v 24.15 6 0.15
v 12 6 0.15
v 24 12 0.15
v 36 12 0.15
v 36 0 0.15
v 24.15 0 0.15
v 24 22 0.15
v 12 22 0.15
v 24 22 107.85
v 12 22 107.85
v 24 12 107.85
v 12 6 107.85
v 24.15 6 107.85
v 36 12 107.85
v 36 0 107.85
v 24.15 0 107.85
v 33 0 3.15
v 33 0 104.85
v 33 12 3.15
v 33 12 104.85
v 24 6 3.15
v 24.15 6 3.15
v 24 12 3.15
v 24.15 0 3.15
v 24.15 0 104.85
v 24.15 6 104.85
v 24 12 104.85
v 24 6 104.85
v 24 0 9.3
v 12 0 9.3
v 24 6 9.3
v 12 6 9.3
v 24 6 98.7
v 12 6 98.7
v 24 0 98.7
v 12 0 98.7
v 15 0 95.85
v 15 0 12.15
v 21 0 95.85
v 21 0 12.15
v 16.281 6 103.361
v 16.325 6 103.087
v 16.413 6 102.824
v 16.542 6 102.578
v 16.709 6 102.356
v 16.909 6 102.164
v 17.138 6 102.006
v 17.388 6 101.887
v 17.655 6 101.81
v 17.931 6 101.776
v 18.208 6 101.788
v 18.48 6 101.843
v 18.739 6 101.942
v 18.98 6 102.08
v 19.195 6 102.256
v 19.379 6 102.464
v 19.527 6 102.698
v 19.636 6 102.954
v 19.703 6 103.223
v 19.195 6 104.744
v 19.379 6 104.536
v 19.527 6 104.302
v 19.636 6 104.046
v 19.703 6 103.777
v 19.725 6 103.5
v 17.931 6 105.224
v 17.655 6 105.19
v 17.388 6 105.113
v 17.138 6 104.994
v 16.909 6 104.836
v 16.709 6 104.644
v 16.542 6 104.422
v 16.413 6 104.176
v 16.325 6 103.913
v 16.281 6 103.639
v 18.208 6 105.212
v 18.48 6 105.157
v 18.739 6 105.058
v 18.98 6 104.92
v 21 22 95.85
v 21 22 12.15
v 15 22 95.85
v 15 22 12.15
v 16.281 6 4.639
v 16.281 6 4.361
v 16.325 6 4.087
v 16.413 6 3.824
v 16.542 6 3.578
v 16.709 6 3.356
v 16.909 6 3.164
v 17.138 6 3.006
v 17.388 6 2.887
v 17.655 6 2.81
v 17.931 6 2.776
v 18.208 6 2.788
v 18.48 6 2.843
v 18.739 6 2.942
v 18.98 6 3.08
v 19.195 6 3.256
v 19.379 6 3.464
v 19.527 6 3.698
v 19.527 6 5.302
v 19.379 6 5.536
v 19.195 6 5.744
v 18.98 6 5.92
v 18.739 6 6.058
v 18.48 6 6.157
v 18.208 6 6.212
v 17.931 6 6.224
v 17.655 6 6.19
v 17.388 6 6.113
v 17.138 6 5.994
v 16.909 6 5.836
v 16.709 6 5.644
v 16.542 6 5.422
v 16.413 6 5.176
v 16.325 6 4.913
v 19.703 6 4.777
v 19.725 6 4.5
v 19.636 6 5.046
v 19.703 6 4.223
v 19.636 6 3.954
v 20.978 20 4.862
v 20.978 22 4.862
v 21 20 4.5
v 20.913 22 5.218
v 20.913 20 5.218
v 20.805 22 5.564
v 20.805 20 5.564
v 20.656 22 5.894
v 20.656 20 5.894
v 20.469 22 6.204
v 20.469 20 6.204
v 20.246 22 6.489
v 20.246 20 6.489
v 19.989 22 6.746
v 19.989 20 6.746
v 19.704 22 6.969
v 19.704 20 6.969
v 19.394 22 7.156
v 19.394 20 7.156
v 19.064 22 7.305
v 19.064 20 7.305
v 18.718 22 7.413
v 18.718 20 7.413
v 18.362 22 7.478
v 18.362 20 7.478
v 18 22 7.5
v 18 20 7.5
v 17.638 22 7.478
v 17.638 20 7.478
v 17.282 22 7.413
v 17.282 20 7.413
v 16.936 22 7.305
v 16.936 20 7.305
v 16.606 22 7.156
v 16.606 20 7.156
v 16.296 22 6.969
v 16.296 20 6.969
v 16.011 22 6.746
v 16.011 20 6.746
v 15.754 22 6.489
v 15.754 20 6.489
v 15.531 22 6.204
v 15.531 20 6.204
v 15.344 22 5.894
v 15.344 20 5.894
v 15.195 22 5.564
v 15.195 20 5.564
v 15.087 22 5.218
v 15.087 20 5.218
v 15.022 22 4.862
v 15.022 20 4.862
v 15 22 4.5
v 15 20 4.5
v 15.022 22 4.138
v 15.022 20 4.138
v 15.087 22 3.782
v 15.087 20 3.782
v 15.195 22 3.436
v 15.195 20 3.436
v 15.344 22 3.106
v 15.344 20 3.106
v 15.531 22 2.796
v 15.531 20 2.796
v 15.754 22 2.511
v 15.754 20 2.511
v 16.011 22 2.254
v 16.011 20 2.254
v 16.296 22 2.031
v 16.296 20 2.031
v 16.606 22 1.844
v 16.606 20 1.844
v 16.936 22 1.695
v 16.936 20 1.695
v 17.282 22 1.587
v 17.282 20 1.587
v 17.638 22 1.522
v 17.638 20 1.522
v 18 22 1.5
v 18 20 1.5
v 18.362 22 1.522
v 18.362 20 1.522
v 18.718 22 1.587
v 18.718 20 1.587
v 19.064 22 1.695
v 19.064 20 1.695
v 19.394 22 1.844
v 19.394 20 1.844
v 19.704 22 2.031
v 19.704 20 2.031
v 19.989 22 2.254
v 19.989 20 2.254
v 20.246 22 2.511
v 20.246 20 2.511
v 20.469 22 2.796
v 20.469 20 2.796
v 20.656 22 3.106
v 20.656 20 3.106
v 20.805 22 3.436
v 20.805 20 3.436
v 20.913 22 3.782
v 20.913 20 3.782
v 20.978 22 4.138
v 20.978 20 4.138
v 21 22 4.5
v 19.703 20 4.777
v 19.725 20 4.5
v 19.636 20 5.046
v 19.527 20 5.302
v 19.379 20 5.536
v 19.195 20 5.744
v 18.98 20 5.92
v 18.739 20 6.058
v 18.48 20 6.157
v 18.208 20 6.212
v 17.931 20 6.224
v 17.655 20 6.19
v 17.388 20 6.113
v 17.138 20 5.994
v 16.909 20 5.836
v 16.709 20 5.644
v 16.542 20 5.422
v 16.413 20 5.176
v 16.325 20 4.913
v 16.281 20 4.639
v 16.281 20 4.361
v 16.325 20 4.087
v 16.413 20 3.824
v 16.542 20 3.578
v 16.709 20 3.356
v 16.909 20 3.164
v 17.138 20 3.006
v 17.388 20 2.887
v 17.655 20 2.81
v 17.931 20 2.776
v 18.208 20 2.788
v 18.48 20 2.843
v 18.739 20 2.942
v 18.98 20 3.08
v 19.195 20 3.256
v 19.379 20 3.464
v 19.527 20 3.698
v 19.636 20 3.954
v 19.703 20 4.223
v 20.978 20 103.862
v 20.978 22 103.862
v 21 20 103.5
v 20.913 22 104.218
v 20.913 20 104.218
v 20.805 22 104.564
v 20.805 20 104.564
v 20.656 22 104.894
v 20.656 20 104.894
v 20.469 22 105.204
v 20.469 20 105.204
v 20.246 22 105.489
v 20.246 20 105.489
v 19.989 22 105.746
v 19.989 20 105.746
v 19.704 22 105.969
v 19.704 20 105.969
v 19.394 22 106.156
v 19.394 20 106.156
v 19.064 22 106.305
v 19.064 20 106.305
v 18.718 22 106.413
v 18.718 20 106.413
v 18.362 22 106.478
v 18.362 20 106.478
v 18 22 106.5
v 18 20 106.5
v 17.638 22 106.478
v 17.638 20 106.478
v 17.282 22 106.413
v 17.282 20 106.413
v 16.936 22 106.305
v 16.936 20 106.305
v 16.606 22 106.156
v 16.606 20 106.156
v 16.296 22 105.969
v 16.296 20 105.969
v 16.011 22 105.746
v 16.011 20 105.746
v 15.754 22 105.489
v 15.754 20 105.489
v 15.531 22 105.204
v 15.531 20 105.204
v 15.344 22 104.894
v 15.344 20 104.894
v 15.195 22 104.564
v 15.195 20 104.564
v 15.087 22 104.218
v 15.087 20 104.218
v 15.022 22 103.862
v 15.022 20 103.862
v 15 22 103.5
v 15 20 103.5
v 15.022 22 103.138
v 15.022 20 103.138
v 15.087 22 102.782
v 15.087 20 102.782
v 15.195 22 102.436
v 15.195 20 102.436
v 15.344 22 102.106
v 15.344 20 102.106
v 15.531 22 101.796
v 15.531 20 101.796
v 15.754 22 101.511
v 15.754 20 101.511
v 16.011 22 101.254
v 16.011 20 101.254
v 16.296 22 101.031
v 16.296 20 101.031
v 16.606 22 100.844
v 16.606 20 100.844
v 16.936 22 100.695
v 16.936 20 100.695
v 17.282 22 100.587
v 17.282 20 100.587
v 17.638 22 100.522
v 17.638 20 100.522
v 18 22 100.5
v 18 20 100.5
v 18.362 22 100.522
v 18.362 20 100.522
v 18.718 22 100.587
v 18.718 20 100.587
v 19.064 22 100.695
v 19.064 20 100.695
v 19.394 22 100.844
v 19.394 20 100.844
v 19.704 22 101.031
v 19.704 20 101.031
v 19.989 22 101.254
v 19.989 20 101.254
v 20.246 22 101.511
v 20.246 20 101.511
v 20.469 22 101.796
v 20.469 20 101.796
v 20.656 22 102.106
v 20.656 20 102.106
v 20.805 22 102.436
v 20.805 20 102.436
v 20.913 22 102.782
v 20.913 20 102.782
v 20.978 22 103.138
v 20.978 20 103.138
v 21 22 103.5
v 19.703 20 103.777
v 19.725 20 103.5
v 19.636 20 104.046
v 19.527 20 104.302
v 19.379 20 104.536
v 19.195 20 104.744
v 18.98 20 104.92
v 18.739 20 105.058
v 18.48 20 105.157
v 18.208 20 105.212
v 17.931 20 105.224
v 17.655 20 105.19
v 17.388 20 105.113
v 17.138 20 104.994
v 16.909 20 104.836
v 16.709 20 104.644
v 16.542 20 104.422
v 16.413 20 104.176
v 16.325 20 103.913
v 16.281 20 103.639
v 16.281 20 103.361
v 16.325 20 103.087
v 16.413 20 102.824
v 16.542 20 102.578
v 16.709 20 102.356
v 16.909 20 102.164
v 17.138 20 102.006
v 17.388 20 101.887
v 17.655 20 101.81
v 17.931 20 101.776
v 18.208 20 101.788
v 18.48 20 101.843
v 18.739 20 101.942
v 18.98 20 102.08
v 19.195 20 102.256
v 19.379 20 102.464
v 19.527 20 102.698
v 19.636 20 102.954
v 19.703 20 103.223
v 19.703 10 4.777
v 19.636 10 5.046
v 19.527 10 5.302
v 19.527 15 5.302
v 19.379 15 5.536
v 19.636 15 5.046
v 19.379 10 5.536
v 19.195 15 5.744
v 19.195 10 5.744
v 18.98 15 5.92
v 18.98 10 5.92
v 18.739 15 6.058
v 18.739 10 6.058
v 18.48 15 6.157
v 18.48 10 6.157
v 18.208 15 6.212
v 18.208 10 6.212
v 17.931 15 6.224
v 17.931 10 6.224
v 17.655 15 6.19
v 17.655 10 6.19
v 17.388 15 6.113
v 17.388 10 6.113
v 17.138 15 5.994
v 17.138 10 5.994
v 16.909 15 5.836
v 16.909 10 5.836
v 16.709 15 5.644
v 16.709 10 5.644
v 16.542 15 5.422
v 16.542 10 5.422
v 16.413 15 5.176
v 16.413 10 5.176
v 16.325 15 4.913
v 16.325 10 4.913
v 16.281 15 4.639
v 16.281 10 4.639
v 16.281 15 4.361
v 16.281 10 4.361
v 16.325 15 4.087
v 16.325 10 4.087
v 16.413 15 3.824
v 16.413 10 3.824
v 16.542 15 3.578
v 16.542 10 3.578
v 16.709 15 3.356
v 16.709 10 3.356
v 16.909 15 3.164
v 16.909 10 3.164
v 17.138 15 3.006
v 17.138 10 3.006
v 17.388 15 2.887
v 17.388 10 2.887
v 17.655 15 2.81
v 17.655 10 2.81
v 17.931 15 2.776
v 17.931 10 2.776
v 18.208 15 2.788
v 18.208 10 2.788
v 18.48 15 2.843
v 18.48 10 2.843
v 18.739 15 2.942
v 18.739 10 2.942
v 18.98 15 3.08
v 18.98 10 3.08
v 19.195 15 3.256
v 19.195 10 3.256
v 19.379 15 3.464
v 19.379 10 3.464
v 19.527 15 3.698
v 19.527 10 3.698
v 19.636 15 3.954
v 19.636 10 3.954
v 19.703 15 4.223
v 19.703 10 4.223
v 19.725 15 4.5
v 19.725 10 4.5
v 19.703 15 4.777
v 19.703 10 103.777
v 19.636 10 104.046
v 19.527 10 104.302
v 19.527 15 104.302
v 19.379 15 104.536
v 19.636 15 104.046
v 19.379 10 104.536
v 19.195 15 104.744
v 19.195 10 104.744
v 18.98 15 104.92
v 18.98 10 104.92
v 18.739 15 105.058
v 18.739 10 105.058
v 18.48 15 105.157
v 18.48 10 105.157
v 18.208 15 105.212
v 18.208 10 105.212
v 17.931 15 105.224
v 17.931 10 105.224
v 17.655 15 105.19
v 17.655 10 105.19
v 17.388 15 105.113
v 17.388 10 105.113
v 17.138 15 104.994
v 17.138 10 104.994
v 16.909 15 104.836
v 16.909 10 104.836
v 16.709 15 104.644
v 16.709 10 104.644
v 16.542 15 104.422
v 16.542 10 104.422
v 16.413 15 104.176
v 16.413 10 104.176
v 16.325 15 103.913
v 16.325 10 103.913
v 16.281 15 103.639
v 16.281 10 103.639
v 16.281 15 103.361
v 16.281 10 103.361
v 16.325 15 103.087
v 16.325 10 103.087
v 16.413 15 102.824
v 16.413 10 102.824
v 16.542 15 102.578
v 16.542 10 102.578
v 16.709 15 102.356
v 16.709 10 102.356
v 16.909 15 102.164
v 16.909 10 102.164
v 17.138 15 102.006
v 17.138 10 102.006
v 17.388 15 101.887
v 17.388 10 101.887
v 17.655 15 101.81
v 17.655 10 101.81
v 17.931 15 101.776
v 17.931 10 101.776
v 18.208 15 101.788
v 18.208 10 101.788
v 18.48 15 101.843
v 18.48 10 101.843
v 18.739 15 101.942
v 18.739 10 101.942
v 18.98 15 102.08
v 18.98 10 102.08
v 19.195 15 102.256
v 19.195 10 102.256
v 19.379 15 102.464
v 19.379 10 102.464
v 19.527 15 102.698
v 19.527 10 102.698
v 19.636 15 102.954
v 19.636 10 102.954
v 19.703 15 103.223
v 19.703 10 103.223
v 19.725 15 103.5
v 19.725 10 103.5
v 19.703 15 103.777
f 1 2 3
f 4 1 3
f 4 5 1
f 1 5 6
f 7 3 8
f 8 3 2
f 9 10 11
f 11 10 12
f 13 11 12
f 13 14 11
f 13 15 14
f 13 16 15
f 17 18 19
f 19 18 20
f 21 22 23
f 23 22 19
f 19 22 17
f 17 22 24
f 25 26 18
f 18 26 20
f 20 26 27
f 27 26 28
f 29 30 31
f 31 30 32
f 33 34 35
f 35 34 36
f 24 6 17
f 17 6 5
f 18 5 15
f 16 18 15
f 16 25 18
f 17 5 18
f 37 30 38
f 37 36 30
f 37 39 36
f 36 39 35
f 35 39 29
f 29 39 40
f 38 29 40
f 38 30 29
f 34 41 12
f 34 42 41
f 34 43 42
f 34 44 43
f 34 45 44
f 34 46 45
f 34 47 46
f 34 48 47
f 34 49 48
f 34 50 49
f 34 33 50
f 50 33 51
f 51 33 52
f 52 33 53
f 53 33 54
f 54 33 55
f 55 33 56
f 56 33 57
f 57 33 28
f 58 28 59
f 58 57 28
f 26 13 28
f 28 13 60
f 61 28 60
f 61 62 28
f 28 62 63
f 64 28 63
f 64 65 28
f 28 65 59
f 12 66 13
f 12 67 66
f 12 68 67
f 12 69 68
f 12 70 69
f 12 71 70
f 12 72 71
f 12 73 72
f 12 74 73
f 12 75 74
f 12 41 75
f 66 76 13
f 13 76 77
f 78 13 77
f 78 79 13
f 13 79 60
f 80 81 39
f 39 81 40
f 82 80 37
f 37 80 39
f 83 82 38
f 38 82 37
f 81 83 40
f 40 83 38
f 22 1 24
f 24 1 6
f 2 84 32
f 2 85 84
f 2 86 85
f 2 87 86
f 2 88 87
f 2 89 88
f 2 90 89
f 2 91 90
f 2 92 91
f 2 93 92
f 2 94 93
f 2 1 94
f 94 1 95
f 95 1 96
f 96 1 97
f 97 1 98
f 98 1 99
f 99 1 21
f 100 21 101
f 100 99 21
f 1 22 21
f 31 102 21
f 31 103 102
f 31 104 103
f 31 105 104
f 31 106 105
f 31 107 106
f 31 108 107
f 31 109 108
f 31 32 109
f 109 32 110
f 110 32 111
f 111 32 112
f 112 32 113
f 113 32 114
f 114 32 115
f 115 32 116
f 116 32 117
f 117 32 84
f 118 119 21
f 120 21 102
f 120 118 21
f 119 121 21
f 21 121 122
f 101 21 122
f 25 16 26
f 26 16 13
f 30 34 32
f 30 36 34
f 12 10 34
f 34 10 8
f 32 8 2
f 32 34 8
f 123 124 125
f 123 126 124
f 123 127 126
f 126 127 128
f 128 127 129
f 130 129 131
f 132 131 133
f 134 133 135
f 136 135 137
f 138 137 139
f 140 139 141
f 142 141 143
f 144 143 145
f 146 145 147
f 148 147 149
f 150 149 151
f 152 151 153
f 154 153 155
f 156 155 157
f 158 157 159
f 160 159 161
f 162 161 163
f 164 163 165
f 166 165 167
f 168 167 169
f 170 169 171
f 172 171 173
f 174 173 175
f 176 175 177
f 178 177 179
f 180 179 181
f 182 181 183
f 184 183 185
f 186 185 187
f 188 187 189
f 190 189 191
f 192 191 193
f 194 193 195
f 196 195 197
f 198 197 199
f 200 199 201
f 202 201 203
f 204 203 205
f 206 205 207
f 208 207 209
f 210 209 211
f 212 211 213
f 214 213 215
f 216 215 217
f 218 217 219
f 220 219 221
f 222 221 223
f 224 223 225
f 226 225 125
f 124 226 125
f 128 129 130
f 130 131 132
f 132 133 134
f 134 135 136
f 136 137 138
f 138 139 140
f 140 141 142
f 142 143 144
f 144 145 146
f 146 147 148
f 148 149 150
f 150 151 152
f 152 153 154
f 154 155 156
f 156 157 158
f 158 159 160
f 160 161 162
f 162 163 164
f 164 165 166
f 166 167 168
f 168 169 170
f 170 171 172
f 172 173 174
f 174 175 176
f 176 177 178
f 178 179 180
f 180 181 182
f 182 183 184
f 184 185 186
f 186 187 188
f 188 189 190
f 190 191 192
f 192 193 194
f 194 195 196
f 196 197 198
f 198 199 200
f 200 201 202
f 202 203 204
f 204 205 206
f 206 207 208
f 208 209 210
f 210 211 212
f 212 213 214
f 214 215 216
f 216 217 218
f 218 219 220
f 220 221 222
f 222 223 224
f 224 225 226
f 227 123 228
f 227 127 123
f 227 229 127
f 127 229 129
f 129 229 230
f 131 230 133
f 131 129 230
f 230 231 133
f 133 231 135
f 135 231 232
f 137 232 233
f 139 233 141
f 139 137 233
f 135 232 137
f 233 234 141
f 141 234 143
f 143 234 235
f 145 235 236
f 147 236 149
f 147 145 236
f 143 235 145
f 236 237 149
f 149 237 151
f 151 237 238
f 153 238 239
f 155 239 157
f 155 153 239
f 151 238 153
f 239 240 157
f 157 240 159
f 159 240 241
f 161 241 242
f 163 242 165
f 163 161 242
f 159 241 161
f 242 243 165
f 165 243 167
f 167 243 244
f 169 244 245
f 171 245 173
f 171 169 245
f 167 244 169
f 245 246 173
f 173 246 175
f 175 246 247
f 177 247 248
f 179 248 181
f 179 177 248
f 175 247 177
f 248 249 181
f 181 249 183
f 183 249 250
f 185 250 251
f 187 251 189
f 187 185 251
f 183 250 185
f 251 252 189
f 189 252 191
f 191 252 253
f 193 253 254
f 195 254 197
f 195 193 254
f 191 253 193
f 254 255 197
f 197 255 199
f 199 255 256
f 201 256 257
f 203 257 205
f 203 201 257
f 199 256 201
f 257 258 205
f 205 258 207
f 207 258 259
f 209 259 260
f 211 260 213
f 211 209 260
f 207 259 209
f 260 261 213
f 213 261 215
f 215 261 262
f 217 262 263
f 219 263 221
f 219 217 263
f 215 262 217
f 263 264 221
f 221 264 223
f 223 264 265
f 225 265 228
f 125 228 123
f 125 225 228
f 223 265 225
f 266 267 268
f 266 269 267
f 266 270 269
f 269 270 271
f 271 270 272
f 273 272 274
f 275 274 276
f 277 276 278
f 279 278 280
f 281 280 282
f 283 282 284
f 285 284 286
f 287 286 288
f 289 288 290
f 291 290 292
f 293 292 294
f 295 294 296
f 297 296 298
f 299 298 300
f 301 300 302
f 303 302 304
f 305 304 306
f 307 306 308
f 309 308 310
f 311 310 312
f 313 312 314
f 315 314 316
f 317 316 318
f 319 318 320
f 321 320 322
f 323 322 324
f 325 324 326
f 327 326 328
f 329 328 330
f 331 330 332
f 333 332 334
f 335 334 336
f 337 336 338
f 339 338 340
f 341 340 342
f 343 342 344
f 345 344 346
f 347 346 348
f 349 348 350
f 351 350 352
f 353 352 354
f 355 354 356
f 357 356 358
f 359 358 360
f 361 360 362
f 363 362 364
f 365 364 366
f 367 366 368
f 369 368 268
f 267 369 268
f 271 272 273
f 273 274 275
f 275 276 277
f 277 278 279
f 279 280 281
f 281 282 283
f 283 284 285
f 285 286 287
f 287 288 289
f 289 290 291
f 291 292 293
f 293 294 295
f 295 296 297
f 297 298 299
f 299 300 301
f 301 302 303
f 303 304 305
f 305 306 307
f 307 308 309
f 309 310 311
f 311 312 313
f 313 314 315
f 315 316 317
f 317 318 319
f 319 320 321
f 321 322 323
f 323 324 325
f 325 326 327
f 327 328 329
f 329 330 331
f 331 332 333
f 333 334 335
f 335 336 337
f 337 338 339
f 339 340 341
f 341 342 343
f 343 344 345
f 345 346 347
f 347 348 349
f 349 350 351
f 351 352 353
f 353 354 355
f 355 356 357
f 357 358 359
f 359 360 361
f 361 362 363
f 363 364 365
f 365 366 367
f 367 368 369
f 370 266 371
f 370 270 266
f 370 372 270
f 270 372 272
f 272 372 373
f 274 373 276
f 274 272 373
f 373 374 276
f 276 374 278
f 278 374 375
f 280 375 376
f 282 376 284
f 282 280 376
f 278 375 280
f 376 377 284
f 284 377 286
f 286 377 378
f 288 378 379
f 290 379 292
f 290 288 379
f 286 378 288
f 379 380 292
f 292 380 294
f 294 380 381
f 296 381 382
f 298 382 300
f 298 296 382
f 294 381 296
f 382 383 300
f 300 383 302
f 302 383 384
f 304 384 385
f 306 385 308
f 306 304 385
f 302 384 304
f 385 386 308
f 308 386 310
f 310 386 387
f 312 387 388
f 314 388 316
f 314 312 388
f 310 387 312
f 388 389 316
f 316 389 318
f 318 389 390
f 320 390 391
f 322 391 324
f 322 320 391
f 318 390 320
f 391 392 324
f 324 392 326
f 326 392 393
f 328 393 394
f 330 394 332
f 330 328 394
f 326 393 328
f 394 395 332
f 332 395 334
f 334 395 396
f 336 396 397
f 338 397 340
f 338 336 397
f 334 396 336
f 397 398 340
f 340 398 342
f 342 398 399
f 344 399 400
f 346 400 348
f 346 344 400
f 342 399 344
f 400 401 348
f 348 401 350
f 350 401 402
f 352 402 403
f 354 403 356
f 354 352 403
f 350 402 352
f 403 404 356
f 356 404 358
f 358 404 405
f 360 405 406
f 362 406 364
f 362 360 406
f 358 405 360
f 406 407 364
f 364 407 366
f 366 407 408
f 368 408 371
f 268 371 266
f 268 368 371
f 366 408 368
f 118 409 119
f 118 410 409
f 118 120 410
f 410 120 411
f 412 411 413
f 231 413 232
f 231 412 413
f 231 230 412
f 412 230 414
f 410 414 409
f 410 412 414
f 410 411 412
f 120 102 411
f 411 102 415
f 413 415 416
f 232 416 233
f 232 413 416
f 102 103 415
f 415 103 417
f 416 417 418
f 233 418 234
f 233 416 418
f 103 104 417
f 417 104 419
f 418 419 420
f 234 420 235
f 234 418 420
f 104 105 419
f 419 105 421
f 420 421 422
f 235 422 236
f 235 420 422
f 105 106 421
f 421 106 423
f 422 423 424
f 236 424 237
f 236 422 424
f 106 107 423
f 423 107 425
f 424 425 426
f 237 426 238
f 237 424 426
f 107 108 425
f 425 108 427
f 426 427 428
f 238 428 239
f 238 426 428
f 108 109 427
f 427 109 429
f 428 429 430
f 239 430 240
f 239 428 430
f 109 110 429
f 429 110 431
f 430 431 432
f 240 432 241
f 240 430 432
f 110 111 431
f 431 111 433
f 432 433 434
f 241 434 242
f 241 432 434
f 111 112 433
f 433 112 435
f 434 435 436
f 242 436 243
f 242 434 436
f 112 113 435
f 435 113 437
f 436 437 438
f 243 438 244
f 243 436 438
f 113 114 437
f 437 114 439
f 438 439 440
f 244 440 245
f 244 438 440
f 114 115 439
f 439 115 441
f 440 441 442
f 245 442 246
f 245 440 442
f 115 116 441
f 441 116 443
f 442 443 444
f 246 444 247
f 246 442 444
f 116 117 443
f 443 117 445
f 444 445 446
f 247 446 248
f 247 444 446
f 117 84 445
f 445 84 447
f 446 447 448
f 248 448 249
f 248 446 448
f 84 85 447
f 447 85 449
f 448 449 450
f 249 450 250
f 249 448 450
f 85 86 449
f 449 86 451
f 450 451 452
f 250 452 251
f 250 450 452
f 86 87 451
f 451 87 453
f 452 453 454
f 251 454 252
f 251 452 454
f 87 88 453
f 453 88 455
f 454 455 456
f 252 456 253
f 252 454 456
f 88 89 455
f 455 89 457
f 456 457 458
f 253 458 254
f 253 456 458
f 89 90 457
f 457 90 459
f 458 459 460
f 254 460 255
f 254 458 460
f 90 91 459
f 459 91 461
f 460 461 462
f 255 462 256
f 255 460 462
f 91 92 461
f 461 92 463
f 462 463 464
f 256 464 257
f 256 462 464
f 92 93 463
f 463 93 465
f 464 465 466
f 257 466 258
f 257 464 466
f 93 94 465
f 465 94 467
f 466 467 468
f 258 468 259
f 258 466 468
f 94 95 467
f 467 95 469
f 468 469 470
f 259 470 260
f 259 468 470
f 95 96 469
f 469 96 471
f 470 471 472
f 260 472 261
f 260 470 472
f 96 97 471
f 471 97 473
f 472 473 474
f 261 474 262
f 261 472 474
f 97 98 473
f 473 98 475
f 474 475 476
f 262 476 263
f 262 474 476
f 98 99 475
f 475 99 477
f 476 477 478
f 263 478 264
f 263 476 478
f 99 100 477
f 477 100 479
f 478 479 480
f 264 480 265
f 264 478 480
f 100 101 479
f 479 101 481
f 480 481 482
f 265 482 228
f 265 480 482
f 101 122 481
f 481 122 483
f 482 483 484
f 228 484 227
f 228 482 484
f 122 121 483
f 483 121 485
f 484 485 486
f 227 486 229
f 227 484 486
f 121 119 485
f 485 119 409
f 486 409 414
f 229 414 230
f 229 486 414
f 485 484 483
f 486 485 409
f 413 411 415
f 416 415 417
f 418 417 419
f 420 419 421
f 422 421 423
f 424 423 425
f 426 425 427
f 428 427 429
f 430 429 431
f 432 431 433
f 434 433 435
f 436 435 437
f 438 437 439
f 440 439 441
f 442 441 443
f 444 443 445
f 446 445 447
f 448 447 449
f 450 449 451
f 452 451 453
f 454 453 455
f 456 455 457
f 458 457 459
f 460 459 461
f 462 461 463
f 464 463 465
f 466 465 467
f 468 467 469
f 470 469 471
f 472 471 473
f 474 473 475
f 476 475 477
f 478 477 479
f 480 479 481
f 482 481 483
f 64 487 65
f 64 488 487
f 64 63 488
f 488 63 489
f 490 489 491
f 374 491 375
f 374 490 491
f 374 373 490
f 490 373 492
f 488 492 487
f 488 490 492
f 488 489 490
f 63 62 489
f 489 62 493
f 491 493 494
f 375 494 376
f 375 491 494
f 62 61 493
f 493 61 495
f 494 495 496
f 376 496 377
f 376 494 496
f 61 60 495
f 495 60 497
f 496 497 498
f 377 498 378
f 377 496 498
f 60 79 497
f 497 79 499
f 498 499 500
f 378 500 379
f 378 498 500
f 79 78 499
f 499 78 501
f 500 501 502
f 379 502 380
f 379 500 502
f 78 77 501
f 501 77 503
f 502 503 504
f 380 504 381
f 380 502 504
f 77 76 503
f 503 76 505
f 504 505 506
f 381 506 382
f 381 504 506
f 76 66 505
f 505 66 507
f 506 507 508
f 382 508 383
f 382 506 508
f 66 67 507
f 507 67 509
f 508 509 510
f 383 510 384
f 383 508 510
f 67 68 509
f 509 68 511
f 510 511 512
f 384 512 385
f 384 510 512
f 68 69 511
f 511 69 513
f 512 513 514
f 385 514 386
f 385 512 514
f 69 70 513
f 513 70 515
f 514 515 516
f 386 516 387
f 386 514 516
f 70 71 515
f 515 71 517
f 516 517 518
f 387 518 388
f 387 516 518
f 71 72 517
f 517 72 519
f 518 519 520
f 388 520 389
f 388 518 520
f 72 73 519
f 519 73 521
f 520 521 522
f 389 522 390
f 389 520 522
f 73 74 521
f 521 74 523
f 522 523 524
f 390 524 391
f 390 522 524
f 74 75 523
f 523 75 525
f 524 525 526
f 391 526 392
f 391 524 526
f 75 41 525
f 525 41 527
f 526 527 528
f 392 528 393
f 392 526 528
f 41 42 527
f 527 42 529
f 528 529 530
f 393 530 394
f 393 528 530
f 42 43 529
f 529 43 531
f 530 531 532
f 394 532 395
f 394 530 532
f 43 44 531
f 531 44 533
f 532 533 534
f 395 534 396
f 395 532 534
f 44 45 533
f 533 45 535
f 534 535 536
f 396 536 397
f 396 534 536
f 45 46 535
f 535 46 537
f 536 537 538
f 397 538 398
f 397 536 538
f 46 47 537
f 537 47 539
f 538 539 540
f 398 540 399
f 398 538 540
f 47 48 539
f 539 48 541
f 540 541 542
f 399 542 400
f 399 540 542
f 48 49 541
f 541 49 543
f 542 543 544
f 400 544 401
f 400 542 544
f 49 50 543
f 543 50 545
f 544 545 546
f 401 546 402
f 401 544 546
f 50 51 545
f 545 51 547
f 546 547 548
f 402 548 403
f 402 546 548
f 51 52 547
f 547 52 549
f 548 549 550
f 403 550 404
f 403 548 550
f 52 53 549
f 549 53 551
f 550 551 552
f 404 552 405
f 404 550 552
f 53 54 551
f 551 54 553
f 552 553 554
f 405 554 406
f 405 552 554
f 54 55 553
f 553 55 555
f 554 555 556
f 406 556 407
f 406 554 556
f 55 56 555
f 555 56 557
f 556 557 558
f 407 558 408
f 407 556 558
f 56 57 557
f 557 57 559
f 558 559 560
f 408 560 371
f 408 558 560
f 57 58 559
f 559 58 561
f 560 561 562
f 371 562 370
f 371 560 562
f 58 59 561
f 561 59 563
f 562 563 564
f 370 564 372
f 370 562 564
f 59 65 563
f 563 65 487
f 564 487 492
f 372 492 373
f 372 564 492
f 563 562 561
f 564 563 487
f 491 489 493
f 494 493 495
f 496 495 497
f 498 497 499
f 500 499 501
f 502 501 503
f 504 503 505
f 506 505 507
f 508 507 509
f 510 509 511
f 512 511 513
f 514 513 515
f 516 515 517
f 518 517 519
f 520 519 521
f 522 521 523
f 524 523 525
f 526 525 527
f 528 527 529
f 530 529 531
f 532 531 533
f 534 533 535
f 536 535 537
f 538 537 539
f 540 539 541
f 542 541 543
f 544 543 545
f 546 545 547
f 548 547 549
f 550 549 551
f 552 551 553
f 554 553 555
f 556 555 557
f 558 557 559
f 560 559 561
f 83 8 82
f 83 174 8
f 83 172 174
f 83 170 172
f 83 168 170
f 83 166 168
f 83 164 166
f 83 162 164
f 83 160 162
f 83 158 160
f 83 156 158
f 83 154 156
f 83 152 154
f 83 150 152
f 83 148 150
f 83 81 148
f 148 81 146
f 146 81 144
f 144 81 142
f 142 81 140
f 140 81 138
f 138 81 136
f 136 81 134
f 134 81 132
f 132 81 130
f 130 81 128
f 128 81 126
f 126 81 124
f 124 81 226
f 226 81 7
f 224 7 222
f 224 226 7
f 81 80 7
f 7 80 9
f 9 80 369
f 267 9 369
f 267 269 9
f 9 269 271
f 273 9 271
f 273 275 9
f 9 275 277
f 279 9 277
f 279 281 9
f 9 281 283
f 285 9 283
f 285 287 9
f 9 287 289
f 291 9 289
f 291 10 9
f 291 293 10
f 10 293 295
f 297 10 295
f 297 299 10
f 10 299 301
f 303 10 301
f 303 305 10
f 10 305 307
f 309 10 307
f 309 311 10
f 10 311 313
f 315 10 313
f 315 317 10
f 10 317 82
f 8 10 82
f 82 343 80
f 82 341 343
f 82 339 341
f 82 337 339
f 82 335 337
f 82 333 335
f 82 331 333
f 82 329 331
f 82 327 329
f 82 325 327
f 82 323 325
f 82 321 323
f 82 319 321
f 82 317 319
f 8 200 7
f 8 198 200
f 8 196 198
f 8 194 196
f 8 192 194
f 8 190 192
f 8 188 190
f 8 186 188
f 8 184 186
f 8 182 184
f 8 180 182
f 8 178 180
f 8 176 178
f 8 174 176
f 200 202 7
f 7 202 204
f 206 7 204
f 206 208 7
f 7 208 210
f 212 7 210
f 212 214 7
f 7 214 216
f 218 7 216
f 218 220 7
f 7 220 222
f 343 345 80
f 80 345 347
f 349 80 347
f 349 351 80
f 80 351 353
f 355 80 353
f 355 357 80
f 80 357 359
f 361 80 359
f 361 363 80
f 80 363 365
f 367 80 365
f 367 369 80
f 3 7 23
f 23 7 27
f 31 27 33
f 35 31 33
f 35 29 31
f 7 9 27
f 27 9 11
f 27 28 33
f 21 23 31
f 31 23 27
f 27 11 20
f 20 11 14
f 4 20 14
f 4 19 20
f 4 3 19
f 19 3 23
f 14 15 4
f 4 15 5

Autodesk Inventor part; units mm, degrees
ref_plane "YZ Plane" through (0, 0, 0) normal (1, 0, 0) x (0, 1, 0)
ref_plane "XZ Plane" through (0, 0, 0) normal (0, 1, 0) x (-1, 0, 0)
ref_plane "XY Plane" through (0, 0, 0) normal (0, 0, 1) x (1, 0, 0)
sketch "Sketch1" plane through (0, 0, 0) normal (0, 0, 1) x (1, 0, 0)
  line L0 (0, 0) -> (36, 0)
  line L1 (36, 0) -> (36, 12)
  line L2 (36, 12) -> (24, 12)
  line L3 (24, 12) -> (24, 22)
  line L4 (24, 22) -> (12, 22)
  line L5 (12, 22) -> (12, 12)
  line L6 (12, 12) -> (0, 12)
  line L7 (0, 12) -> (0, 0)
  dimension "d0" = 36
  dimension "d1" = 12
  dimension "d2" = 12
  dimension "d3" = 10
  dimension "d4" = 12
extrude "Extrusion1" add sketch "Sketch1" along normal blind 108
sketch "Sketch2" plane through (0, 0, 0) normal (0, -1, 0) x (1, 0, 0)
  circle A0 centre (18, 4.5) radius 1.725
  line L0 (0, 0) -> (36, 0) projected
  line L1 (36, 0) -> (36, 108) projected
  circle A1 centre (18, 103.5) radius 1.725
  line L2 (0, 108) -> (36, 108) projected
  dimension "d7" = 3.45
  dimension "d8" = 4.5
  dimension "d9" = 18
  dimension "d10" = 3.45
  dimension "d11" = 18
  dimension "d12" = 4.5
extrude "Extrusion2" cut sketch "Sketch2" against normal blind 20
sketch "Sketch3" plane through (12, 22, 0) normal (0, 1, 0) x (1, 0, 0)
  circle A0 centre (6, -4.5) radius 1.725 projected
  circle A1 centre (6, -4.5) radius 3
  circle A2 centre (6, -103.5) radius 1.725 projected
  circle A3 centre (6, -103.5) radius 3
  point P0 (-12, 0)
  dimension "d15" = 6
  dimension "d16" = 6
extrude "Extrusion3" cut sketch "Sketch3" against normal blind 2 contours A0 | A1 | A2 | A3
sketch "Sketch4" plane through (36, 0, 0) normal (1, 0, 0) x (0, 0, -1)
  line L0 (-108, 0) -> (-107.85, 0)
  line L1 (0, 0) -> (-108, 0) projected
  line L2 (-107.85, 0) -> (-107.85, 12)
  line L3 (0, 12) -> (-108, 12) projected
  line L4 (-108, 0) -> (-108, 12) projected
  line L5 (-108, 12) -> (-108, 0)
  line L6 (-108, 22) -> (-107.85, 22)
  line L7 (-107.85, 12) -> (-108, 12)
  line L8 (0, 0) -> (-0.15, 0)
  line L9 (-0.15, 0) -> (-0.15, 12)
  line L10 (-0.15, 12) -> (0, 12)
  line L11 (0, 12) -> (0, 0)
  line L12 (0, 22) -> (-0.15, 22)
  line L13 (-0.15, 12) -> (0, 12)
  dimension "d19" = 0.15
  dimension "d20" = 12
  dimension "d21" = 0.15
  dimension "d22" = 0.15
extrude "Extrusion4" cut sketch "Sketch4" against normal through all contours L4 L3 L2 L0 | L9 L3 L11 L1
sketch "Sketch5" plane through (24, 22, 108) normal (1, 0, 0) x (0, 0, -1)
  line L0 (108, -10) -> (108, 0) projected
  line L1 (108, 0) -> (0, 0) projected
  line L2 (108, -10) -> (107.85, -10)
  line L3 (107.85, -10) -> (107.85, 0)
  line L4 (107.85, 0) -> (108, 0)
  line L5 (108, 0) -> (108, -10)
  line L6 (0.15, -10) -> (0, -10) projected
  line L7 (0, -10) -> (0, 0) projected
  line L8 (0.15, -10) -> (0, -10)
  line L9 (0, -10) -> (0, 0)
  line L10 (0, 0) -> (0.15, 0)
  line L11 (0.15, 0) -> (0.15, -10)
  point P0 (108, -22)
  dimension "d25" = 0.15
extrude "Extrusion5" cut sketch "Sketch5" against normal through all
sketch "Sketch6" plane through (12, 22, 0.15) normal (0, 1, 0) x (1, 0, 0)
  line L0 (0, 0) -> (0, -107.7) projected
  line L1 (12, 0) -> (12, -107.7) projected
  line L2 (0, -98.85) -> (12, -98.85)
  line L3 (12, -98.85) -> (12, -8.85)
  line L4 (12, -8.85) -> (0, -8.85)
  line L5 (0, -8.85) -> (0, -98.85)
  point P0 (-12, 0.15)
  dimension "d28" = 8.85
  dimension "d29" = 8.85
sketch "Sketch7" plane through (0, 0, 107.85) normal (0, -1, 0) x (1, 0, 0)
  line L0 (0, -107.7) -> (36, -107.7) projected
  line L1 (11.85, -107.7) -> (24.15, -107.7)
  line L2 (24.15, -107.7) -> (24.15, -98.55)
  line L3 (24.15, -98.55) -> (11.85, -98.55)
  line L4 (11.85, -98.55) -> (11.85, -107.7)
  line L5 (0, 0) -> (12, 0) projected
  line L6 (11.85, 0) -> (24.15, 0)
  line L7 (24.15, 0) -> (24.15, -9.15)
  line L8 (24.15, -9.15) -> (11.85, -9.15)
  line L9 (11.85, -9.15) -> (11.85, 0)
  line L10 (36, -107.7) -> (36, 0) projected
  point P0 (0, -107.85)
  dimension "d30" = 11.85
  dimension "d31" = 11.85
  dimension "d32" = 9.15
  dimension "d33" = 11.85
  dimension "d34" = 11.85
  dimension "d35" = 9.15
extrude "Extrusion6" cut sketch "Sketch7" against normal blind 6
sketch "Sketch8" plane through (36, 0, 0.15) normal (0, -1, 0) x (1, 0, 0)
  line L0 (-21, 95.7) -> (-15, 95.7)
  line L1 (-15, 95.7) -> (-15, 12)
  line L2 (-15, 12) -> (-21, 12)
  line L3 (-21, 12) -> (-21, 95.7)
  line L4 (-11.85, 0) -> (-24.15, 0) projected
  line L5 (0, 107.7) -> (-11.85, 107.7) projected
  line L6 (-24, 0) -> (-24, 107.7) projected
  line L7 (-12, 0) -> (-12, 107.7) projected
  point P0 (-36, -0.15)
  dimension "d38" = 12
  dimension "d39" = 12
  dimension "d40" = 3
  dimension "d41" = 3
extrude "Extrusion7" cut sketch "Sketch8" against normal through all
sketch "Sketch9" plane through (24, 12, 107.85) normal (0, 1, 0) x (1, 0, 0)
  line L0 (9, 3) -> (0, 3)
  line L1 (0, 3) -> (0, 104.7)
  line L2 (0, 104.7) -> (9, 104.7)
  line L3 (9, 104.7) -> (9, 3)
  line L4 (-12, 3) -> (-21, 3)
  line L5 (-21, 3) -> (-21, 104.7)
  line L6 (-21, 104.7) -> (-12, 104.7)
  line L7 (-12, 104.7) -> (-12, 3)
  line L8 (12, 0) -> (0.15, 0) projected
  line L9 (12, 107.7) -> (0, 107.7) projected
  line L10 (12, 107.7) -> (12, 0) projected
  line L11 (-24, 107.7) -> (-24, 0) projected
  line L12 (-12, 107.7) -> (-24, 107.7) projected
  line L13 (-24, 0) -> (-12, 0) projected
  line L14 (-12, 107.7) -> (-12, 0) projected
  line L15 (0, 107.7) -> (0, 0) projected
  point P0 (-24, 107.85)
  dimension "d44" = 3
  dimension "d45" = 3
  dimension "d46" = 3
  dimension "d47" = 3
  dimension "d48" = 3
  dimension "d49" = 3
  dimension "d50" = 0
  dimension "d51" = 0
extrude "Extrusion8" cut sketch "Sketch9" against normal through all contours L0 L1 L2 L3 | L4 L5 L6 L7
sketch "Sketch10" plane through (12, 0, 98.7) normal (0, -1, 0) x (1, 0, 0)
  line L0 (3, -86.55) -> (3, -2.85) projected
  line L1 (9, -2.85) -> (9, -86.55) projected
  line L2 (3, -2.85) -> (9, -2.85)
  line L3 (9, -2.85) -> (9, -86.55)
  line L4 (9, -86.55) -> (3, -86.55)
  line L5 (3, -86.55) -> (3, -2.85)
  line L6 (0, 0) -> (0, -89.4) projected
  line L7 (12, -98.55) -> (12, 9.15) projected
  line L8 (0, 0) -> (12, 0)
  line L9 (12, 0) -> (12, -89.4)
  line L10 (12, -89.4) -> (0, -89.4)
  line L11 (0, -89.4) -> (0, 0)
  line L12 (12, -89.4) -> (0, -89.4)
  line L13 (0, -89.4) -> (0, 0)
  line L14 (0, 0) -> (12, 0)
  line L15 (12, 0) -> (12, -89.4)
  point P0 (-12, -98.7)
sketch "Sketch11" plane through (36, 0, 107.85) normal (0, 0, 1) x (1, 0, 0)
  line L0 (-36, 0) -> (-36, 12) projected
  line L1 (-24.15, 0) -> (-33, 0) projected
  line L2 (-36, 12) -> (-24.15, 12)
  line L3 (-24.15, 12) -> (-24.15, 0)
  line L4 (-24.15, 0) -> (-36, 0)
  line L5 (-36, 0) -> (-36, 12)
extrude "Extrusion9" cut sketch "Sketch11" against normal through all
sketch "Sketch12" plane through (36, 0, 0.15) normal (0, 0, -1) x (-1, 0, 0)
  line L0 (24, 12) -> (24, 22) projected
  line L1 (24.15, 6) -> (24.15, 12) projected
  line L2 (24, 12) -> (24.15, 12)
  line L3 (24.15, 12) -> (24.15, 6)
  line L4 (24.15, 6) -> (24, 6)
  line L5 (24, 6) -> (24, 12)
  point P0 (36, 0)
extrude "Extrusion10" cut sketch "Sketch12" against normal through all
properties part number "cutcenterbeam"
